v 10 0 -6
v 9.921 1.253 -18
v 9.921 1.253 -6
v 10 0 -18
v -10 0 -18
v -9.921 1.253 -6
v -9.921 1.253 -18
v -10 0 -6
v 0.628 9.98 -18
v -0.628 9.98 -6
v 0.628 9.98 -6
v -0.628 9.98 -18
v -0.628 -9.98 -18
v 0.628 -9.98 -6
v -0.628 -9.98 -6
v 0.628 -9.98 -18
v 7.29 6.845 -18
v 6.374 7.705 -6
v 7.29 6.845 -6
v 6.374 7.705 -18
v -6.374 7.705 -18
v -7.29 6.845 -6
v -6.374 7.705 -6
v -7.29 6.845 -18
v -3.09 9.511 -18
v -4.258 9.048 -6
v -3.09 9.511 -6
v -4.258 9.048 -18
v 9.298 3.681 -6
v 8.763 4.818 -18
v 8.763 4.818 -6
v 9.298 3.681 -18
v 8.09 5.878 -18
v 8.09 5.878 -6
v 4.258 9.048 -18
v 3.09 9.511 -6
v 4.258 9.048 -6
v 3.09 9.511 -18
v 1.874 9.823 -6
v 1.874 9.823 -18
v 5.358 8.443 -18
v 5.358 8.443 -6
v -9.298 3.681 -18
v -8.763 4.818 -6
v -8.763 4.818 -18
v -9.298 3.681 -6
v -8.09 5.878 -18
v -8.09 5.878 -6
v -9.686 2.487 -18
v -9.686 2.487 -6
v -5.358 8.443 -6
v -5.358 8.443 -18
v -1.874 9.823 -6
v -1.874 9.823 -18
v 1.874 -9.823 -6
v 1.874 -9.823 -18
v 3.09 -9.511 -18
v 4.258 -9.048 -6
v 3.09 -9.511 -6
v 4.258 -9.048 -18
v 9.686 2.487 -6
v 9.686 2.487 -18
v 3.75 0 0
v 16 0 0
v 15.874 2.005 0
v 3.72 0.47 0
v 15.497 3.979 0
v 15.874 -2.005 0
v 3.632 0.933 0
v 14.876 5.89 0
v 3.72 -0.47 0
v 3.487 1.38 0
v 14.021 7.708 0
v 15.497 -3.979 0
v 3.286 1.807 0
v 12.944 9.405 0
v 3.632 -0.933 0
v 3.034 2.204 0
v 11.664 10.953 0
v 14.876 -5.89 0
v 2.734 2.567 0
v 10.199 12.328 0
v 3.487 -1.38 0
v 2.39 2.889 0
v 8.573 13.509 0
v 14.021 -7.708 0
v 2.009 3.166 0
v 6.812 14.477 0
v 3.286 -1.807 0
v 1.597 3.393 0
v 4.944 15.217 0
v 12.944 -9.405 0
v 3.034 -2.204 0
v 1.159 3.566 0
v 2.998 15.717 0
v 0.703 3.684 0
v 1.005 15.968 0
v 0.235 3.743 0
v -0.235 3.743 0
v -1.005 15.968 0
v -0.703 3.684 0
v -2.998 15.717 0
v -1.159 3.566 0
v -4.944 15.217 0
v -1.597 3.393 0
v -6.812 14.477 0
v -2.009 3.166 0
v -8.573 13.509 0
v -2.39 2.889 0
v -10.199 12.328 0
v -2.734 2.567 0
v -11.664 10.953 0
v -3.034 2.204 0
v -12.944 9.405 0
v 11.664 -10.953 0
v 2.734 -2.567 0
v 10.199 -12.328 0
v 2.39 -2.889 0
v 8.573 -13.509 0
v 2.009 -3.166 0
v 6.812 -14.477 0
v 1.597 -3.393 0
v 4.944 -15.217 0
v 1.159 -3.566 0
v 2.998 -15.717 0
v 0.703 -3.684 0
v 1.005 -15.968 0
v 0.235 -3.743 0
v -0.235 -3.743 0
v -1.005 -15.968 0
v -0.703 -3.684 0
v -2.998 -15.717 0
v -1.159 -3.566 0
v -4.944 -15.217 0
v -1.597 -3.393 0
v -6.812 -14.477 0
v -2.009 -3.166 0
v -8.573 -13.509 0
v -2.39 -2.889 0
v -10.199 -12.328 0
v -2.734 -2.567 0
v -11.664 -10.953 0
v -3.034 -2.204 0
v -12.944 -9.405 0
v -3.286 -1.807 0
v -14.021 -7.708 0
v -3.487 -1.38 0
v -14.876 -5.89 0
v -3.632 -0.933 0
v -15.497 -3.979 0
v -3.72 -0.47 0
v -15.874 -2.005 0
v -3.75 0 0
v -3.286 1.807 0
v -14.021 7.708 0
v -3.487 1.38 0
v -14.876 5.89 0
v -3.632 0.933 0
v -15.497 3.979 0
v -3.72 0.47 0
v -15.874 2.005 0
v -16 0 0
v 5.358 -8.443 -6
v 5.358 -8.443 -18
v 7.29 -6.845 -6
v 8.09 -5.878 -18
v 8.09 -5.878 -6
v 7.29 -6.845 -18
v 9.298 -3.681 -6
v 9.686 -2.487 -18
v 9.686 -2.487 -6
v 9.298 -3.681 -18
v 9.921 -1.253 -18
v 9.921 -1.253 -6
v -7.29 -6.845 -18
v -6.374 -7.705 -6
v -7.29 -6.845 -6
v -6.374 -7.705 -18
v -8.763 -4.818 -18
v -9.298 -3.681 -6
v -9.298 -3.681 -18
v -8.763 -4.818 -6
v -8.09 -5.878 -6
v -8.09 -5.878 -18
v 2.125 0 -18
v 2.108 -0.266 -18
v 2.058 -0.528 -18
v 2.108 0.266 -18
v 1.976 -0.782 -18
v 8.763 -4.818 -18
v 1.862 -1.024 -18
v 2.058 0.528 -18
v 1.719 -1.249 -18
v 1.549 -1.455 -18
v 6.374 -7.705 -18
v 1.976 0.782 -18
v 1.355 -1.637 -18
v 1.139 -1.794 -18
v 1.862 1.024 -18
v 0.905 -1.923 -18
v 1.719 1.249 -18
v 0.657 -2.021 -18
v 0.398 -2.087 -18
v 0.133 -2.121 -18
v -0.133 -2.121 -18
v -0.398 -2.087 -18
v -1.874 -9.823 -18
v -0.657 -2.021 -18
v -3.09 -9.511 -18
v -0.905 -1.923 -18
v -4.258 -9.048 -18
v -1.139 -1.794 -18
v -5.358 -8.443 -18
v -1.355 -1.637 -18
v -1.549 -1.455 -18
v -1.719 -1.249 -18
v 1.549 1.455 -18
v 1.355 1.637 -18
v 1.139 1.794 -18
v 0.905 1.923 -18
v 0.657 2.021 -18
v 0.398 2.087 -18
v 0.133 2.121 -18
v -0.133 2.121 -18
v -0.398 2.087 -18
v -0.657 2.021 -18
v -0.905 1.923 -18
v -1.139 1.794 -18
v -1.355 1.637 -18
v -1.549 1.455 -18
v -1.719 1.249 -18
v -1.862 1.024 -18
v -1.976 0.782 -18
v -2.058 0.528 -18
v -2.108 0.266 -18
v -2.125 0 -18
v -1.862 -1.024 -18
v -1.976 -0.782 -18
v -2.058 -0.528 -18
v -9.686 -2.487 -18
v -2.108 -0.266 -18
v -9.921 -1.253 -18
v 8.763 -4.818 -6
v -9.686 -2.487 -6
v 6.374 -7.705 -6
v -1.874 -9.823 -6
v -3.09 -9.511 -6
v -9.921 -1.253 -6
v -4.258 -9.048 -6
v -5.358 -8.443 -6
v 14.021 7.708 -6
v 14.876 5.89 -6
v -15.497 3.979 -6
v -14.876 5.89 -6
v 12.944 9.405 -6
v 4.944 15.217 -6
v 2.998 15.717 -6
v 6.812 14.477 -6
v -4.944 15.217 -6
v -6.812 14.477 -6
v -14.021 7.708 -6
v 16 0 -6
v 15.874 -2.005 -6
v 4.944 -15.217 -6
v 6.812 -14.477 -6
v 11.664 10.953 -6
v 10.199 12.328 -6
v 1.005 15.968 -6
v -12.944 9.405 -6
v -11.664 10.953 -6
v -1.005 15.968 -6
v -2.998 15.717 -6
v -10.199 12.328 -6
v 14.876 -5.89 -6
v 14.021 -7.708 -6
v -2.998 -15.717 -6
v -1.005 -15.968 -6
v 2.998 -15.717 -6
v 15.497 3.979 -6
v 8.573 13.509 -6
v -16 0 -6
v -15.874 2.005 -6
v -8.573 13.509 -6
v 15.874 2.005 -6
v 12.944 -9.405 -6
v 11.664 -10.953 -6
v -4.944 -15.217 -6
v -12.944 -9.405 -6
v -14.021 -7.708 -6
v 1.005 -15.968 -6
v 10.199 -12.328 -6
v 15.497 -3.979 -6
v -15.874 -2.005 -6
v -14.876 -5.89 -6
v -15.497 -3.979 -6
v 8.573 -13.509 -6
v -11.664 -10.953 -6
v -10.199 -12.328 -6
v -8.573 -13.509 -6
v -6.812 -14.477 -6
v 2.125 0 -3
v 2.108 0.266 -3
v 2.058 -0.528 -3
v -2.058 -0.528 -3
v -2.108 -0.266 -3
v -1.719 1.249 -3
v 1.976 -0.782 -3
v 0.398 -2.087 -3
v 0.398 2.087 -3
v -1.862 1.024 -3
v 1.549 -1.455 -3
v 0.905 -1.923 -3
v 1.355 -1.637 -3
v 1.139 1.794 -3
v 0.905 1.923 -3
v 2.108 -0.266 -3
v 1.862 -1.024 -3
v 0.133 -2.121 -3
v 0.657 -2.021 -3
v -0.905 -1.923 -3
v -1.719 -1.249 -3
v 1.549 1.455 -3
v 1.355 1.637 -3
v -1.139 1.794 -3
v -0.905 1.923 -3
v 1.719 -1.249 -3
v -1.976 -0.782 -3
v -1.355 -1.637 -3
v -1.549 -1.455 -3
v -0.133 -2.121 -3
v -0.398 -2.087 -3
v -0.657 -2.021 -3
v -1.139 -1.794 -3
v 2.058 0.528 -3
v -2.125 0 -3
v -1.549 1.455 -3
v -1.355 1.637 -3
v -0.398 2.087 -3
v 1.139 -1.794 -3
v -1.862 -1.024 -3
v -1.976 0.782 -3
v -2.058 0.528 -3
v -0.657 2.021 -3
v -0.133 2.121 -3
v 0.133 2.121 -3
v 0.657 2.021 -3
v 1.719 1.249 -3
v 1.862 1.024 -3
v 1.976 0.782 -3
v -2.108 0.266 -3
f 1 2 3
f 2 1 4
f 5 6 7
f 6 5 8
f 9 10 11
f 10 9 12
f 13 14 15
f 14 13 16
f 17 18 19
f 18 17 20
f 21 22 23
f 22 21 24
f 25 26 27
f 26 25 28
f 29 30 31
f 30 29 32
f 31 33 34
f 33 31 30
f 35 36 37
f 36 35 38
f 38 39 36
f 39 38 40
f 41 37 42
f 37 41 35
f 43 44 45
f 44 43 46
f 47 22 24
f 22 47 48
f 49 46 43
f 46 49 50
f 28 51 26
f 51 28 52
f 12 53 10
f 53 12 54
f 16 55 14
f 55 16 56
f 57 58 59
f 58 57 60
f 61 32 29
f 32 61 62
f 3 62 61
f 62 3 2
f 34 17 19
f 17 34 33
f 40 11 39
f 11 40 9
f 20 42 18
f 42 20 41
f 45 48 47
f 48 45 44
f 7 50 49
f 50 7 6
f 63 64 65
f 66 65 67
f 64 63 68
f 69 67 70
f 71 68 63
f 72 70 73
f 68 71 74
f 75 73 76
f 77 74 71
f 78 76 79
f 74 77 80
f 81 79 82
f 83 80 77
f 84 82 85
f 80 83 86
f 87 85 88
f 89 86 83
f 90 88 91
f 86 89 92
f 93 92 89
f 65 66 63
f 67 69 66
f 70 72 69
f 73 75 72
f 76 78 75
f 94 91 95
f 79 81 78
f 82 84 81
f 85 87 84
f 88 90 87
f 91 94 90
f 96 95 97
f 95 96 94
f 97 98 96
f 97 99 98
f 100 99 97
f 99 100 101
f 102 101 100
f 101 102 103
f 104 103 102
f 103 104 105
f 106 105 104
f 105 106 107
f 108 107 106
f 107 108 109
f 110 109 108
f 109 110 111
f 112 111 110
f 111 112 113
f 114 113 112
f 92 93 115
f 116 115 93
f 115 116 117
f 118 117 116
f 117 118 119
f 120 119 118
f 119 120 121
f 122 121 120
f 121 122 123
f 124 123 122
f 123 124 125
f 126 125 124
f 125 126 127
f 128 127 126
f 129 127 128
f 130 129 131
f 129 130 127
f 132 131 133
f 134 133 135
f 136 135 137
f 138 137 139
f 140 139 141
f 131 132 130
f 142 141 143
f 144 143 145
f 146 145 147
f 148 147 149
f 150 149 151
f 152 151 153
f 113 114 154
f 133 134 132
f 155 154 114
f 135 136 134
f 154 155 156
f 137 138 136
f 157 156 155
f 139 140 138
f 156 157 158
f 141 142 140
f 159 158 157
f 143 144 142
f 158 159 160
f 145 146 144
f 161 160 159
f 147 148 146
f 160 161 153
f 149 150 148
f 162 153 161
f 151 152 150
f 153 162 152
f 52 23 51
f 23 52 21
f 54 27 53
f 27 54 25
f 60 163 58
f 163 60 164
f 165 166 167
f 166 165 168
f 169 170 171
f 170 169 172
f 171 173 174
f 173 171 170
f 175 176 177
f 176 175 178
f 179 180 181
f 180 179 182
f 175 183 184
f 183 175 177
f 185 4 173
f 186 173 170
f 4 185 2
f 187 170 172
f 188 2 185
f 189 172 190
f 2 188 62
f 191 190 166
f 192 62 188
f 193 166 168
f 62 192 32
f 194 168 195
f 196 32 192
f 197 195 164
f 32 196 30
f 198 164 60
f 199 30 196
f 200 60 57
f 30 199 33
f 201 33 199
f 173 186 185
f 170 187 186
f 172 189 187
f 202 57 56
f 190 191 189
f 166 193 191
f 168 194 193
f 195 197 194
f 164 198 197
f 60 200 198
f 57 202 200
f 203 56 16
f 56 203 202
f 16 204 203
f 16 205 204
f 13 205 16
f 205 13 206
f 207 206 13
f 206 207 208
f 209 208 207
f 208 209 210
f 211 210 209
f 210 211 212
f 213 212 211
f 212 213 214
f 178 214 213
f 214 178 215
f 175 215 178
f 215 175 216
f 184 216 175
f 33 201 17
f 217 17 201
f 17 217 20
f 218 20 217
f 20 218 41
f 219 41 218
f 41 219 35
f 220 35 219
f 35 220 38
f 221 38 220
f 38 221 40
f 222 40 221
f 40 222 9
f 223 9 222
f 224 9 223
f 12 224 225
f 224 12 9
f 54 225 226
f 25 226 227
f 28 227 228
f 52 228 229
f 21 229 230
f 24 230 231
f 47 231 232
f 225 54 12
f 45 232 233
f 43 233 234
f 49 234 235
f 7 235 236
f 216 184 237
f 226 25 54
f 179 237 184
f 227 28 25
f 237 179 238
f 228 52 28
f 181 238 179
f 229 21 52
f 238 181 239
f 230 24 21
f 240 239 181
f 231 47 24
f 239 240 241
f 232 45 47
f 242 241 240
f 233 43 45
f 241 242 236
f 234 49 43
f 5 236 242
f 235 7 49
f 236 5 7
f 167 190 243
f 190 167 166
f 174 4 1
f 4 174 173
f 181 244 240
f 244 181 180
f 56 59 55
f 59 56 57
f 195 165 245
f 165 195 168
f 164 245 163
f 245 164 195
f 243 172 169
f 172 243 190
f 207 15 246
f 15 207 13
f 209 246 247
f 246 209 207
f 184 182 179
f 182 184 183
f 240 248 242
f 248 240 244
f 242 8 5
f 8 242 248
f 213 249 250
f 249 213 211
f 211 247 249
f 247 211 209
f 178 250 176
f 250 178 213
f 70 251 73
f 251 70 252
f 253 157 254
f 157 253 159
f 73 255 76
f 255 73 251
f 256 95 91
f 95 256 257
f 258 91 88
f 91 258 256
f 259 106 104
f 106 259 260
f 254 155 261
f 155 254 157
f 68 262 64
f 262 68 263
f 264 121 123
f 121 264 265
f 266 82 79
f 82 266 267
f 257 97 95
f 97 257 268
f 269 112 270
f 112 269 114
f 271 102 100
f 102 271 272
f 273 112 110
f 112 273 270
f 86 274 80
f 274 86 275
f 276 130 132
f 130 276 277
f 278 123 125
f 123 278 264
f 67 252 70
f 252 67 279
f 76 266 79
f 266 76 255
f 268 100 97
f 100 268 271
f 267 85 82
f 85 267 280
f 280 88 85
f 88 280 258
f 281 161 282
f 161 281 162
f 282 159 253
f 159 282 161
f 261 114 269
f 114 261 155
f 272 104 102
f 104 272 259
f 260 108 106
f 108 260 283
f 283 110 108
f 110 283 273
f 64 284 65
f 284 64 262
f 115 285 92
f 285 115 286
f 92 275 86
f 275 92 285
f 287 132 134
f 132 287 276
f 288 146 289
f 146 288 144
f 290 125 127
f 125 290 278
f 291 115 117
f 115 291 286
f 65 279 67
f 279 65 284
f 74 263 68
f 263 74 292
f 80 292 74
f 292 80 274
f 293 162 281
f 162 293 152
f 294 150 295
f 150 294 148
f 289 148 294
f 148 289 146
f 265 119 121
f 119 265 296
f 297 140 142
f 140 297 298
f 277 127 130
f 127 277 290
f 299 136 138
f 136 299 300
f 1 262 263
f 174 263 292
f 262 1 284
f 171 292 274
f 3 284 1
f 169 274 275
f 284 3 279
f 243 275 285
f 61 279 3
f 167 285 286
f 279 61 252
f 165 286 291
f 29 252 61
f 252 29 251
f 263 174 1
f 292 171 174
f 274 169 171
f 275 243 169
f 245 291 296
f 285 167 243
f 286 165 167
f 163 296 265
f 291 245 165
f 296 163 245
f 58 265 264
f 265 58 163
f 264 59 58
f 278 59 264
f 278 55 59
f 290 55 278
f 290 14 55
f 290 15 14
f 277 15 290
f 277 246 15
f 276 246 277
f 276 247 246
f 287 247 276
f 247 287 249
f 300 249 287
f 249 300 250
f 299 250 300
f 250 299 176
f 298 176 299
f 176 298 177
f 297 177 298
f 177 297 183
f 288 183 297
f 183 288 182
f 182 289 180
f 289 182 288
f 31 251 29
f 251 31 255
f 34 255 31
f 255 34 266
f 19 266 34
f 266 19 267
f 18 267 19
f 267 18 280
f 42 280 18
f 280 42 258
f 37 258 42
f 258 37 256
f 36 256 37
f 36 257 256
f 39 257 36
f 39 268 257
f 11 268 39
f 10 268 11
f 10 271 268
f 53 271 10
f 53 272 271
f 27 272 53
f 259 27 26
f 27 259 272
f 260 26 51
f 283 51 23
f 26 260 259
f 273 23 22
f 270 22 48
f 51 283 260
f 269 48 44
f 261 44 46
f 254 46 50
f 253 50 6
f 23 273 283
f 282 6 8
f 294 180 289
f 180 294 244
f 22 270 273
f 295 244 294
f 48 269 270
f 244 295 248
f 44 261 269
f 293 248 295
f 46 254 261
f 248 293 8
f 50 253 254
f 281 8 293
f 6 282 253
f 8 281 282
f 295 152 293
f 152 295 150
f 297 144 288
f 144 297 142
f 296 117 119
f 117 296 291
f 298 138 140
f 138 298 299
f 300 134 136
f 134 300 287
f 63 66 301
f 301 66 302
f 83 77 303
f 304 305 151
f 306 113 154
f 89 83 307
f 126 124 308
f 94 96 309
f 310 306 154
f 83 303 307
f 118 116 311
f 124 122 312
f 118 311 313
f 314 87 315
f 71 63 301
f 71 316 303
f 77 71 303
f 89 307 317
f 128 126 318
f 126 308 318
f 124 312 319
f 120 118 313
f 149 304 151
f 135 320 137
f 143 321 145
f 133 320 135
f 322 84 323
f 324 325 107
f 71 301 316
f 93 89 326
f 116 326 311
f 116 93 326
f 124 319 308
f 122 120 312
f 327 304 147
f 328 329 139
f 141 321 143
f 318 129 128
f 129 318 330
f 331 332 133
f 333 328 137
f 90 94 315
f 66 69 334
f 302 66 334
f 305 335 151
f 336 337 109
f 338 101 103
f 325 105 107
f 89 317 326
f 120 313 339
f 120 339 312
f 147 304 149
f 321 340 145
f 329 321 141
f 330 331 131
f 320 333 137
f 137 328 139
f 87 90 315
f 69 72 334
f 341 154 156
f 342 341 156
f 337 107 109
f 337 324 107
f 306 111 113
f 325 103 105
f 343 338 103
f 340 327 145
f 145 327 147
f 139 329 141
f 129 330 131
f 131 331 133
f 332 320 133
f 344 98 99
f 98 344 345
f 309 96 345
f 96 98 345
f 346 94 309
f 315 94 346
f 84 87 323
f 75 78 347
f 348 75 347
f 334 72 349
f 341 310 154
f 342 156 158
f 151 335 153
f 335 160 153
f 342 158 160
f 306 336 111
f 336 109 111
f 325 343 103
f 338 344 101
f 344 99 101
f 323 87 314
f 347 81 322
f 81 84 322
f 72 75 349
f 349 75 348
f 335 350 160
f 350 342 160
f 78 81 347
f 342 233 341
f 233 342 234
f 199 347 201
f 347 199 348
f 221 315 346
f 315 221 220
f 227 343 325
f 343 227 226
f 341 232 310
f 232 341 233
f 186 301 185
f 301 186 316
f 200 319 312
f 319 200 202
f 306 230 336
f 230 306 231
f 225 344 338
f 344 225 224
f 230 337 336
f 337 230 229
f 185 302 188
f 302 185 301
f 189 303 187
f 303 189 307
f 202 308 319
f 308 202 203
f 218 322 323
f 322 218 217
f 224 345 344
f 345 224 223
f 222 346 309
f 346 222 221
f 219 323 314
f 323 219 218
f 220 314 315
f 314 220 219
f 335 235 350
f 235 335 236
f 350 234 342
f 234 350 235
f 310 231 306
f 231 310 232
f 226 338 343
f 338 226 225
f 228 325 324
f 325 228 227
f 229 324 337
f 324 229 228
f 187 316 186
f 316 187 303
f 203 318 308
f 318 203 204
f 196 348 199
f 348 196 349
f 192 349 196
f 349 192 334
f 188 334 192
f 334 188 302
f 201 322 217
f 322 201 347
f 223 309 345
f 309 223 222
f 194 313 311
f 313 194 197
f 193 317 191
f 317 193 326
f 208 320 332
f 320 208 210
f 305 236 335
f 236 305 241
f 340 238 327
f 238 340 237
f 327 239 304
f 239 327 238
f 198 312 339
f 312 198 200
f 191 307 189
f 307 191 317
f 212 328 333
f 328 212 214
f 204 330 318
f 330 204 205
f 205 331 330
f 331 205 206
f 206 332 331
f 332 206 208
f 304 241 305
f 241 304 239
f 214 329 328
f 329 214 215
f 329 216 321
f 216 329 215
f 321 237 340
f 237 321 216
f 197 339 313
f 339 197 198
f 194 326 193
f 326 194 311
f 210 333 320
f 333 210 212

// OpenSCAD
$fn = 50;


difference() {
	union() {
		translate(v = [0, 0, -18.0000000000]) {
			cylinder(h = 18, r = 10.0000000000);
		}
		translate(v = [0, 0, -6.0000000000]) {
			cylinder(h = 6, r = 16.0000000000);
		}
	}
	union() {
		translate(v = [0, 0, 0]) {
			rotate(a = [0, 0, 0]) {
				difference() {
					union() {
						#translate(v = [0, 0, -18.0000000000]) {
							cylinder(h = 18, r = 2.0000000000);
						}
						#translate(v = [0, 0, -3]) {
							cylinder(h = 3, r = 10.0000000000, r1 = 2.1250000000, r2 = 3.7500000000);
						}
						#translate(v = [0, 0, -18.0000000000]) {
							cylinder(h = 18, r = 2.1250000000);
						}
						#translate(v = [0, 0, -18.0000000000]) {
							cylinder(h = 18, r = 2.0000000000);
						}
					}
					union();
				}
			}
		}
	}
}
